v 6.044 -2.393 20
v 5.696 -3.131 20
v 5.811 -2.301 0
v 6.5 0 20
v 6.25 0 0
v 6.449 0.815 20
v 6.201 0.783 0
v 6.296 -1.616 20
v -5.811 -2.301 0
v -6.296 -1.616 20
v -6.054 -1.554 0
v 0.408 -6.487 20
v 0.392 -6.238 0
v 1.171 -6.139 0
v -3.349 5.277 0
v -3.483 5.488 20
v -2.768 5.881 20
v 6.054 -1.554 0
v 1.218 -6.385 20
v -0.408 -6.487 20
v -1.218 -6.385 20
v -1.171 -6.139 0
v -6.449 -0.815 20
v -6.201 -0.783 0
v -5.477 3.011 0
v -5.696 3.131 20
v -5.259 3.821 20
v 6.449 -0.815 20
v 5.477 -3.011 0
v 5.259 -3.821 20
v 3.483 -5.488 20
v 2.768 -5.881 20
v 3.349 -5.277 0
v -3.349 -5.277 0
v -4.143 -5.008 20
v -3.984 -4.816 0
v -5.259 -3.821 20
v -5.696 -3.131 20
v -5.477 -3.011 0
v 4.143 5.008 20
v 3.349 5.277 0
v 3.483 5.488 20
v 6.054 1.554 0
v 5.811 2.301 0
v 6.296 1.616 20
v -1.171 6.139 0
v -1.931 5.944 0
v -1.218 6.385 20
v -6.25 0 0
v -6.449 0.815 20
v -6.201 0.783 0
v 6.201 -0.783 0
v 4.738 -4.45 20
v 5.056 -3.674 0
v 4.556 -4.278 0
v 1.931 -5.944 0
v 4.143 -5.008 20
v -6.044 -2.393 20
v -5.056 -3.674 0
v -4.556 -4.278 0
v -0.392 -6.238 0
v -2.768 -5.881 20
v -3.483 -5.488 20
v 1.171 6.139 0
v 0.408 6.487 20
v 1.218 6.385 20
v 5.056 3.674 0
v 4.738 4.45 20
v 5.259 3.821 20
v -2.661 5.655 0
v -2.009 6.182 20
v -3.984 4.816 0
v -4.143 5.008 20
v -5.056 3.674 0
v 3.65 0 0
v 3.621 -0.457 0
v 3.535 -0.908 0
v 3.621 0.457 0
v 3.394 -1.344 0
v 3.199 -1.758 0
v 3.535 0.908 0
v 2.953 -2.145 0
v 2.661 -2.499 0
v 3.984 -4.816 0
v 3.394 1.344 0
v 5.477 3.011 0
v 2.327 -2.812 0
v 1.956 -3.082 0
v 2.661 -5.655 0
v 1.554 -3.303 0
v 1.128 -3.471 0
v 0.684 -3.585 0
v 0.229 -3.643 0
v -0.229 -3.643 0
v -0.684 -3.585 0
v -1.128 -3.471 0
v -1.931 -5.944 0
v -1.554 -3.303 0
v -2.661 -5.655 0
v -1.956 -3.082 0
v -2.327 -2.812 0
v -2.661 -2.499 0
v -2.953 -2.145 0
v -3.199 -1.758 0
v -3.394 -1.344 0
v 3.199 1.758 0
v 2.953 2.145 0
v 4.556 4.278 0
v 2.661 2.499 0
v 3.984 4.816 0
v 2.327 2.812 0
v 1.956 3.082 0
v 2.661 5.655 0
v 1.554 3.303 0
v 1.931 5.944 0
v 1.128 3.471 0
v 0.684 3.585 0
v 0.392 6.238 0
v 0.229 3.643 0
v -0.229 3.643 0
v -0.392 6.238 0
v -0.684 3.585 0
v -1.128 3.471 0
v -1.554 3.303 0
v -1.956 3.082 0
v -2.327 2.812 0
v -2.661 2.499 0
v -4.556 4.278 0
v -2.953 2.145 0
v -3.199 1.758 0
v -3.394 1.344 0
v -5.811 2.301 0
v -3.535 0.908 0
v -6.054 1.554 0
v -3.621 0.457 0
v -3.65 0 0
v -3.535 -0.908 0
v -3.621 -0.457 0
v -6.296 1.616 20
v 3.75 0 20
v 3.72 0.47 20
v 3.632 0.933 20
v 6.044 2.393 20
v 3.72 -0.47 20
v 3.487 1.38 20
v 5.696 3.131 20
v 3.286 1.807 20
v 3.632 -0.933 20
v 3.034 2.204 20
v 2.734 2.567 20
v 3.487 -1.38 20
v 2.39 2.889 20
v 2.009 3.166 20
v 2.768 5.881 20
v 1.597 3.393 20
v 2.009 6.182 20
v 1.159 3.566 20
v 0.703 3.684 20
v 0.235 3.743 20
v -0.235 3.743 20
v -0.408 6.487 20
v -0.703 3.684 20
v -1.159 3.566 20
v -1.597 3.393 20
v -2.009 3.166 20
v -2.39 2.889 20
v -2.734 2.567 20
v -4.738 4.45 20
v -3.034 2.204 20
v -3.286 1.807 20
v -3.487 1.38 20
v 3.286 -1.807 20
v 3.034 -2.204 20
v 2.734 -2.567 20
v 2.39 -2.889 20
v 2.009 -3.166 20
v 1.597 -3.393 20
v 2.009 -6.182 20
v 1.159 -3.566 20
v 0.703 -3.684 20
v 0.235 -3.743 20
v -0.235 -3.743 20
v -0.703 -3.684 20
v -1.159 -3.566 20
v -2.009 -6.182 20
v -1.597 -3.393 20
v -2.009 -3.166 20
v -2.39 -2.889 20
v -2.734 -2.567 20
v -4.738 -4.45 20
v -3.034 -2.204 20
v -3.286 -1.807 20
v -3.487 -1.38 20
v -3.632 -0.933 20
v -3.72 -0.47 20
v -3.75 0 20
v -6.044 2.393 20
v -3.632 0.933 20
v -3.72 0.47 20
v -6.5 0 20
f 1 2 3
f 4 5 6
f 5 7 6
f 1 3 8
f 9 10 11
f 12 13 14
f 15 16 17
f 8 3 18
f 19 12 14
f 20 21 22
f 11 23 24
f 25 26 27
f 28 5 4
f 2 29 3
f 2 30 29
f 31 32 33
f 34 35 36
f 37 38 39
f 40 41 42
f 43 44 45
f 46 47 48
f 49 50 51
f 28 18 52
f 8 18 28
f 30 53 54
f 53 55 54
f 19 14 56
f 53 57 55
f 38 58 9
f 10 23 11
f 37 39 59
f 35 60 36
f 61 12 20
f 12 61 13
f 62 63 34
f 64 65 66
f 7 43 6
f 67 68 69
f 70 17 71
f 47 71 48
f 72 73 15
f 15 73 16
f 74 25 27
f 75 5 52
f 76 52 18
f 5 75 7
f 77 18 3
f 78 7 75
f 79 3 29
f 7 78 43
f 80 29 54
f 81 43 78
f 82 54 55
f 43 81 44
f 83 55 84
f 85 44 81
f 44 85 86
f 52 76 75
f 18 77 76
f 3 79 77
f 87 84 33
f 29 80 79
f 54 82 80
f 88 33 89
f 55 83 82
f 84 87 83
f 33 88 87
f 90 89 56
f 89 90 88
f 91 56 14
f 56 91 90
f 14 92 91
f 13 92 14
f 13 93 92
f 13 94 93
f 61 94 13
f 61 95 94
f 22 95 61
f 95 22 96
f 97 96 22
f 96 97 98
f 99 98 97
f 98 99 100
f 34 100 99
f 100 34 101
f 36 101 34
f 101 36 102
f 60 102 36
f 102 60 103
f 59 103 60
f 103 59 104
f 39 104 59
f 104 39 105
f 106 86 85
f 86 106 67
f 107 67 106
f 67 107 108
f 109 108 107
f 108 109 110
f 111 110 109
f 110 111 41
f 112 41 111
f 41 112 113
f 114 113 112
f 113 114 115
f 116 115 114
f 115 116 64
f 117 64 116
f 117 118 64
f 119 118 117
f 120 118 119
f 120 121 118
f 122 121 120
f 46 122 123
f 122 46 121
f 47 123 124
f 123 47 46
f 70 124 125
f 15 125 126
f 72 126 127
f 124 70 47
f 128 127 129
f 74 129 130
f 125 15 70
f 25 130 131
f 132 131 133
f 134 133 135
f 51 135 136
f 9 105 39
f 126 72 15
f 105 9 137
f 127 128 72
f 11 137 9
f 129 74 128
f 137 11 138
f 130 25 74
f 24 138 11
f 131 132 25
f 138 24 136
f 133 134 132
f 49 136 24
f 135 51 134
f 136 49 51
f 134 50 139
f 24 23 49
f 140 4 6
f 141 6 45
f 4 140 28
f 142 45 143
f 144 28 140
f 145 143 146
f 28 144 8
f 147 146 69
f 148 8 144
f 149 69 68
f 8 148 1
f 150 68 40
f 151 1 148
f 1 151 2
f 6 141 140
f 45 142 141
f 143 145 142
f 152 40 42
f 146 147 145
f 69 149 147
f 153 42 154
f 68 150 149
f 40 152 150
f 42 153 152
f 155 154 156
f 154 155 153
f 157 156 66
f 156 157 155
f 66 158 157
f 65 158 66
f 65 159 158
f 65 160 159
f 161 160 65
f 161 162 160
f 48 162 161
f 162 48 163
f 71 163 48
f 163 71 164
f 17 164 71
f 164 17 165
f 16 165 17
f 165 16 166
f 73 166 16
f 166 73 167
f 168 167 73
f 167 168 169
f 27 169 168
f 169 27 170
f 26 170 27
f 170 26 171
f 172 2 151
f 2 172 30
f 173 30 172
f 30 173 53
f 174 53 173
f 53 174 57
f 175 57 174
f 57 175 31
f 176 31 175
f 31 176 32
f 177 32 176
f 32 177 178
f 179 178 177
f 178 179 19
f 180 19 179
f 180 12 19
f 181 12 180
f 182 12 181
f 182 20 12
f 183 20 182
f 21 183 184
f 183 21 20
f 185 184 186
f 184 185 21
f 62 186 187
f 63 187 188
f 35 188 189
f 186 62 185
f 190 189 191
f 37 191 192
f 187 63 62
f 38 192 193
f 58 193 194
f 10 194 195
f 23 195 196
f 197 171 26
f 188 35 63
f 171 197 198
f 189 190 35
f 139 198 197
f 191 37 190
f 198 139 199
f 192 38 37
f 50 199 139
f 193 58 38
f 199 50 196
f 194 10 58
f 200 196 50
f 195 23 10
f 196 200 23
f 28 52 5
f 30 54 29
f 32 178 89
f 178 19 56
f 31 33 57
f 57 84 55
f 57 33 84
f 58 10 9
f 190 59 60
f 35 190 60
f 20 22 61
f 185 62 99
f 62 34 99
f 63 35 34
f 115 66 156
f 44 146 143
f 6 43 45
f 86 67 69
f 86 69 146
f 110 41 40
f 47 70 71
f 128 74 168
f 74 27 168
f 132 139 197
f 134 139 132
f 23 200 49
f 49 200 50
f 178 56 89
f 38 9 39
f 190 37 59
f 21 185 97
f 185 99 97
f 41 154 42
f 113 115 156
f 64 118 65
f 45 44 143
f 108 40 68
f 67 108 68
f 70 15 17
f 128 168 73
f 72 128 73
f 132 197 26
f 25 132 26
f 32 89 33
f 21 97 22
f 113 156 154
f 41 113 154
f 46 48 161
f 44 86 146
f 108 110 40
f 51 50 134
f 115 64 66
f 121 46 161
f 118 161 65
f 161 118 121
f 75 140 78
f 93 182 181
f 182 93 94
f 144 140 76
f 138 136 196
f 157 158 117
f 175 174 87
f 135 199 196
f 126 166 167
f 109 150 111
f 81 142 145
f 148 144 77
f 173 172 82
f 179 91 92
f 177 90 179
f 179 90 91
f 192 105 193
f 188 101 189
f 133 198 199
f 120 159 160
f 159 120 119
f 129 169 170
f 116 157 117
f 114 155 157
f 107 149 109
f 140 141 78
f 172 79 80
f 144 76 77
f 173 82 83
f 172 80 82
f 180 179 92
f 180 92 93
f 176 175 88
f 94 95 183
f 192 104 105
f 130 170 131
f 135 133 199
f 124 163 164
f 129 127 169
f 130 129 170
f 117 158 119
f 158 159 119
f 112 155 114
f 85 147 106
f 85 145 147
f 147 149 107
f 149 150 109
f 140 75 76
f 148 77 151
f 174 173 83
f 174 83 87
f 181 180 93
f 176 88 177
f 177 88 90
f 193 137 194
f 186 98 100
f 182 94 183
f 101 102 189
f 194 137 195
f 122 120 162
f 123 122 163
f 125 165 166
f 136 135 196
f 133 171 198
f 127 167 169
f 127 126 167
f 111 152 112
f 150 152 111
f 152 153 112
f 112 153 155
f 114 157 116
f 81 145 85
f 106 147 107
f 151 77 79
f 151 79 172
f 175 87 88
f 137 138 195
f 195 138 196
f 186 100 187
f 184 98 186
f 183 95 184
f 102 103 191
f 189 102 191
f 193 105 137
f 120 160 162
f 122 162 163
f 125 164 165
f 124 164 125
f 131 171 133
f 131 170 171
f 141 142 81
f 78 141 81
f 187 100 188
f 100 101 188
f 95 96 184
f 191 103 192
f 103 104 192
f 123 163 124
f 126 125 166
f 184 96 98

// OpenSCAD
$fn=50;

difference() {
cylinder(h=20,d1=12.5, d2=13);
cylinder(h=20,d1=7.3, d2=7.5);
}
